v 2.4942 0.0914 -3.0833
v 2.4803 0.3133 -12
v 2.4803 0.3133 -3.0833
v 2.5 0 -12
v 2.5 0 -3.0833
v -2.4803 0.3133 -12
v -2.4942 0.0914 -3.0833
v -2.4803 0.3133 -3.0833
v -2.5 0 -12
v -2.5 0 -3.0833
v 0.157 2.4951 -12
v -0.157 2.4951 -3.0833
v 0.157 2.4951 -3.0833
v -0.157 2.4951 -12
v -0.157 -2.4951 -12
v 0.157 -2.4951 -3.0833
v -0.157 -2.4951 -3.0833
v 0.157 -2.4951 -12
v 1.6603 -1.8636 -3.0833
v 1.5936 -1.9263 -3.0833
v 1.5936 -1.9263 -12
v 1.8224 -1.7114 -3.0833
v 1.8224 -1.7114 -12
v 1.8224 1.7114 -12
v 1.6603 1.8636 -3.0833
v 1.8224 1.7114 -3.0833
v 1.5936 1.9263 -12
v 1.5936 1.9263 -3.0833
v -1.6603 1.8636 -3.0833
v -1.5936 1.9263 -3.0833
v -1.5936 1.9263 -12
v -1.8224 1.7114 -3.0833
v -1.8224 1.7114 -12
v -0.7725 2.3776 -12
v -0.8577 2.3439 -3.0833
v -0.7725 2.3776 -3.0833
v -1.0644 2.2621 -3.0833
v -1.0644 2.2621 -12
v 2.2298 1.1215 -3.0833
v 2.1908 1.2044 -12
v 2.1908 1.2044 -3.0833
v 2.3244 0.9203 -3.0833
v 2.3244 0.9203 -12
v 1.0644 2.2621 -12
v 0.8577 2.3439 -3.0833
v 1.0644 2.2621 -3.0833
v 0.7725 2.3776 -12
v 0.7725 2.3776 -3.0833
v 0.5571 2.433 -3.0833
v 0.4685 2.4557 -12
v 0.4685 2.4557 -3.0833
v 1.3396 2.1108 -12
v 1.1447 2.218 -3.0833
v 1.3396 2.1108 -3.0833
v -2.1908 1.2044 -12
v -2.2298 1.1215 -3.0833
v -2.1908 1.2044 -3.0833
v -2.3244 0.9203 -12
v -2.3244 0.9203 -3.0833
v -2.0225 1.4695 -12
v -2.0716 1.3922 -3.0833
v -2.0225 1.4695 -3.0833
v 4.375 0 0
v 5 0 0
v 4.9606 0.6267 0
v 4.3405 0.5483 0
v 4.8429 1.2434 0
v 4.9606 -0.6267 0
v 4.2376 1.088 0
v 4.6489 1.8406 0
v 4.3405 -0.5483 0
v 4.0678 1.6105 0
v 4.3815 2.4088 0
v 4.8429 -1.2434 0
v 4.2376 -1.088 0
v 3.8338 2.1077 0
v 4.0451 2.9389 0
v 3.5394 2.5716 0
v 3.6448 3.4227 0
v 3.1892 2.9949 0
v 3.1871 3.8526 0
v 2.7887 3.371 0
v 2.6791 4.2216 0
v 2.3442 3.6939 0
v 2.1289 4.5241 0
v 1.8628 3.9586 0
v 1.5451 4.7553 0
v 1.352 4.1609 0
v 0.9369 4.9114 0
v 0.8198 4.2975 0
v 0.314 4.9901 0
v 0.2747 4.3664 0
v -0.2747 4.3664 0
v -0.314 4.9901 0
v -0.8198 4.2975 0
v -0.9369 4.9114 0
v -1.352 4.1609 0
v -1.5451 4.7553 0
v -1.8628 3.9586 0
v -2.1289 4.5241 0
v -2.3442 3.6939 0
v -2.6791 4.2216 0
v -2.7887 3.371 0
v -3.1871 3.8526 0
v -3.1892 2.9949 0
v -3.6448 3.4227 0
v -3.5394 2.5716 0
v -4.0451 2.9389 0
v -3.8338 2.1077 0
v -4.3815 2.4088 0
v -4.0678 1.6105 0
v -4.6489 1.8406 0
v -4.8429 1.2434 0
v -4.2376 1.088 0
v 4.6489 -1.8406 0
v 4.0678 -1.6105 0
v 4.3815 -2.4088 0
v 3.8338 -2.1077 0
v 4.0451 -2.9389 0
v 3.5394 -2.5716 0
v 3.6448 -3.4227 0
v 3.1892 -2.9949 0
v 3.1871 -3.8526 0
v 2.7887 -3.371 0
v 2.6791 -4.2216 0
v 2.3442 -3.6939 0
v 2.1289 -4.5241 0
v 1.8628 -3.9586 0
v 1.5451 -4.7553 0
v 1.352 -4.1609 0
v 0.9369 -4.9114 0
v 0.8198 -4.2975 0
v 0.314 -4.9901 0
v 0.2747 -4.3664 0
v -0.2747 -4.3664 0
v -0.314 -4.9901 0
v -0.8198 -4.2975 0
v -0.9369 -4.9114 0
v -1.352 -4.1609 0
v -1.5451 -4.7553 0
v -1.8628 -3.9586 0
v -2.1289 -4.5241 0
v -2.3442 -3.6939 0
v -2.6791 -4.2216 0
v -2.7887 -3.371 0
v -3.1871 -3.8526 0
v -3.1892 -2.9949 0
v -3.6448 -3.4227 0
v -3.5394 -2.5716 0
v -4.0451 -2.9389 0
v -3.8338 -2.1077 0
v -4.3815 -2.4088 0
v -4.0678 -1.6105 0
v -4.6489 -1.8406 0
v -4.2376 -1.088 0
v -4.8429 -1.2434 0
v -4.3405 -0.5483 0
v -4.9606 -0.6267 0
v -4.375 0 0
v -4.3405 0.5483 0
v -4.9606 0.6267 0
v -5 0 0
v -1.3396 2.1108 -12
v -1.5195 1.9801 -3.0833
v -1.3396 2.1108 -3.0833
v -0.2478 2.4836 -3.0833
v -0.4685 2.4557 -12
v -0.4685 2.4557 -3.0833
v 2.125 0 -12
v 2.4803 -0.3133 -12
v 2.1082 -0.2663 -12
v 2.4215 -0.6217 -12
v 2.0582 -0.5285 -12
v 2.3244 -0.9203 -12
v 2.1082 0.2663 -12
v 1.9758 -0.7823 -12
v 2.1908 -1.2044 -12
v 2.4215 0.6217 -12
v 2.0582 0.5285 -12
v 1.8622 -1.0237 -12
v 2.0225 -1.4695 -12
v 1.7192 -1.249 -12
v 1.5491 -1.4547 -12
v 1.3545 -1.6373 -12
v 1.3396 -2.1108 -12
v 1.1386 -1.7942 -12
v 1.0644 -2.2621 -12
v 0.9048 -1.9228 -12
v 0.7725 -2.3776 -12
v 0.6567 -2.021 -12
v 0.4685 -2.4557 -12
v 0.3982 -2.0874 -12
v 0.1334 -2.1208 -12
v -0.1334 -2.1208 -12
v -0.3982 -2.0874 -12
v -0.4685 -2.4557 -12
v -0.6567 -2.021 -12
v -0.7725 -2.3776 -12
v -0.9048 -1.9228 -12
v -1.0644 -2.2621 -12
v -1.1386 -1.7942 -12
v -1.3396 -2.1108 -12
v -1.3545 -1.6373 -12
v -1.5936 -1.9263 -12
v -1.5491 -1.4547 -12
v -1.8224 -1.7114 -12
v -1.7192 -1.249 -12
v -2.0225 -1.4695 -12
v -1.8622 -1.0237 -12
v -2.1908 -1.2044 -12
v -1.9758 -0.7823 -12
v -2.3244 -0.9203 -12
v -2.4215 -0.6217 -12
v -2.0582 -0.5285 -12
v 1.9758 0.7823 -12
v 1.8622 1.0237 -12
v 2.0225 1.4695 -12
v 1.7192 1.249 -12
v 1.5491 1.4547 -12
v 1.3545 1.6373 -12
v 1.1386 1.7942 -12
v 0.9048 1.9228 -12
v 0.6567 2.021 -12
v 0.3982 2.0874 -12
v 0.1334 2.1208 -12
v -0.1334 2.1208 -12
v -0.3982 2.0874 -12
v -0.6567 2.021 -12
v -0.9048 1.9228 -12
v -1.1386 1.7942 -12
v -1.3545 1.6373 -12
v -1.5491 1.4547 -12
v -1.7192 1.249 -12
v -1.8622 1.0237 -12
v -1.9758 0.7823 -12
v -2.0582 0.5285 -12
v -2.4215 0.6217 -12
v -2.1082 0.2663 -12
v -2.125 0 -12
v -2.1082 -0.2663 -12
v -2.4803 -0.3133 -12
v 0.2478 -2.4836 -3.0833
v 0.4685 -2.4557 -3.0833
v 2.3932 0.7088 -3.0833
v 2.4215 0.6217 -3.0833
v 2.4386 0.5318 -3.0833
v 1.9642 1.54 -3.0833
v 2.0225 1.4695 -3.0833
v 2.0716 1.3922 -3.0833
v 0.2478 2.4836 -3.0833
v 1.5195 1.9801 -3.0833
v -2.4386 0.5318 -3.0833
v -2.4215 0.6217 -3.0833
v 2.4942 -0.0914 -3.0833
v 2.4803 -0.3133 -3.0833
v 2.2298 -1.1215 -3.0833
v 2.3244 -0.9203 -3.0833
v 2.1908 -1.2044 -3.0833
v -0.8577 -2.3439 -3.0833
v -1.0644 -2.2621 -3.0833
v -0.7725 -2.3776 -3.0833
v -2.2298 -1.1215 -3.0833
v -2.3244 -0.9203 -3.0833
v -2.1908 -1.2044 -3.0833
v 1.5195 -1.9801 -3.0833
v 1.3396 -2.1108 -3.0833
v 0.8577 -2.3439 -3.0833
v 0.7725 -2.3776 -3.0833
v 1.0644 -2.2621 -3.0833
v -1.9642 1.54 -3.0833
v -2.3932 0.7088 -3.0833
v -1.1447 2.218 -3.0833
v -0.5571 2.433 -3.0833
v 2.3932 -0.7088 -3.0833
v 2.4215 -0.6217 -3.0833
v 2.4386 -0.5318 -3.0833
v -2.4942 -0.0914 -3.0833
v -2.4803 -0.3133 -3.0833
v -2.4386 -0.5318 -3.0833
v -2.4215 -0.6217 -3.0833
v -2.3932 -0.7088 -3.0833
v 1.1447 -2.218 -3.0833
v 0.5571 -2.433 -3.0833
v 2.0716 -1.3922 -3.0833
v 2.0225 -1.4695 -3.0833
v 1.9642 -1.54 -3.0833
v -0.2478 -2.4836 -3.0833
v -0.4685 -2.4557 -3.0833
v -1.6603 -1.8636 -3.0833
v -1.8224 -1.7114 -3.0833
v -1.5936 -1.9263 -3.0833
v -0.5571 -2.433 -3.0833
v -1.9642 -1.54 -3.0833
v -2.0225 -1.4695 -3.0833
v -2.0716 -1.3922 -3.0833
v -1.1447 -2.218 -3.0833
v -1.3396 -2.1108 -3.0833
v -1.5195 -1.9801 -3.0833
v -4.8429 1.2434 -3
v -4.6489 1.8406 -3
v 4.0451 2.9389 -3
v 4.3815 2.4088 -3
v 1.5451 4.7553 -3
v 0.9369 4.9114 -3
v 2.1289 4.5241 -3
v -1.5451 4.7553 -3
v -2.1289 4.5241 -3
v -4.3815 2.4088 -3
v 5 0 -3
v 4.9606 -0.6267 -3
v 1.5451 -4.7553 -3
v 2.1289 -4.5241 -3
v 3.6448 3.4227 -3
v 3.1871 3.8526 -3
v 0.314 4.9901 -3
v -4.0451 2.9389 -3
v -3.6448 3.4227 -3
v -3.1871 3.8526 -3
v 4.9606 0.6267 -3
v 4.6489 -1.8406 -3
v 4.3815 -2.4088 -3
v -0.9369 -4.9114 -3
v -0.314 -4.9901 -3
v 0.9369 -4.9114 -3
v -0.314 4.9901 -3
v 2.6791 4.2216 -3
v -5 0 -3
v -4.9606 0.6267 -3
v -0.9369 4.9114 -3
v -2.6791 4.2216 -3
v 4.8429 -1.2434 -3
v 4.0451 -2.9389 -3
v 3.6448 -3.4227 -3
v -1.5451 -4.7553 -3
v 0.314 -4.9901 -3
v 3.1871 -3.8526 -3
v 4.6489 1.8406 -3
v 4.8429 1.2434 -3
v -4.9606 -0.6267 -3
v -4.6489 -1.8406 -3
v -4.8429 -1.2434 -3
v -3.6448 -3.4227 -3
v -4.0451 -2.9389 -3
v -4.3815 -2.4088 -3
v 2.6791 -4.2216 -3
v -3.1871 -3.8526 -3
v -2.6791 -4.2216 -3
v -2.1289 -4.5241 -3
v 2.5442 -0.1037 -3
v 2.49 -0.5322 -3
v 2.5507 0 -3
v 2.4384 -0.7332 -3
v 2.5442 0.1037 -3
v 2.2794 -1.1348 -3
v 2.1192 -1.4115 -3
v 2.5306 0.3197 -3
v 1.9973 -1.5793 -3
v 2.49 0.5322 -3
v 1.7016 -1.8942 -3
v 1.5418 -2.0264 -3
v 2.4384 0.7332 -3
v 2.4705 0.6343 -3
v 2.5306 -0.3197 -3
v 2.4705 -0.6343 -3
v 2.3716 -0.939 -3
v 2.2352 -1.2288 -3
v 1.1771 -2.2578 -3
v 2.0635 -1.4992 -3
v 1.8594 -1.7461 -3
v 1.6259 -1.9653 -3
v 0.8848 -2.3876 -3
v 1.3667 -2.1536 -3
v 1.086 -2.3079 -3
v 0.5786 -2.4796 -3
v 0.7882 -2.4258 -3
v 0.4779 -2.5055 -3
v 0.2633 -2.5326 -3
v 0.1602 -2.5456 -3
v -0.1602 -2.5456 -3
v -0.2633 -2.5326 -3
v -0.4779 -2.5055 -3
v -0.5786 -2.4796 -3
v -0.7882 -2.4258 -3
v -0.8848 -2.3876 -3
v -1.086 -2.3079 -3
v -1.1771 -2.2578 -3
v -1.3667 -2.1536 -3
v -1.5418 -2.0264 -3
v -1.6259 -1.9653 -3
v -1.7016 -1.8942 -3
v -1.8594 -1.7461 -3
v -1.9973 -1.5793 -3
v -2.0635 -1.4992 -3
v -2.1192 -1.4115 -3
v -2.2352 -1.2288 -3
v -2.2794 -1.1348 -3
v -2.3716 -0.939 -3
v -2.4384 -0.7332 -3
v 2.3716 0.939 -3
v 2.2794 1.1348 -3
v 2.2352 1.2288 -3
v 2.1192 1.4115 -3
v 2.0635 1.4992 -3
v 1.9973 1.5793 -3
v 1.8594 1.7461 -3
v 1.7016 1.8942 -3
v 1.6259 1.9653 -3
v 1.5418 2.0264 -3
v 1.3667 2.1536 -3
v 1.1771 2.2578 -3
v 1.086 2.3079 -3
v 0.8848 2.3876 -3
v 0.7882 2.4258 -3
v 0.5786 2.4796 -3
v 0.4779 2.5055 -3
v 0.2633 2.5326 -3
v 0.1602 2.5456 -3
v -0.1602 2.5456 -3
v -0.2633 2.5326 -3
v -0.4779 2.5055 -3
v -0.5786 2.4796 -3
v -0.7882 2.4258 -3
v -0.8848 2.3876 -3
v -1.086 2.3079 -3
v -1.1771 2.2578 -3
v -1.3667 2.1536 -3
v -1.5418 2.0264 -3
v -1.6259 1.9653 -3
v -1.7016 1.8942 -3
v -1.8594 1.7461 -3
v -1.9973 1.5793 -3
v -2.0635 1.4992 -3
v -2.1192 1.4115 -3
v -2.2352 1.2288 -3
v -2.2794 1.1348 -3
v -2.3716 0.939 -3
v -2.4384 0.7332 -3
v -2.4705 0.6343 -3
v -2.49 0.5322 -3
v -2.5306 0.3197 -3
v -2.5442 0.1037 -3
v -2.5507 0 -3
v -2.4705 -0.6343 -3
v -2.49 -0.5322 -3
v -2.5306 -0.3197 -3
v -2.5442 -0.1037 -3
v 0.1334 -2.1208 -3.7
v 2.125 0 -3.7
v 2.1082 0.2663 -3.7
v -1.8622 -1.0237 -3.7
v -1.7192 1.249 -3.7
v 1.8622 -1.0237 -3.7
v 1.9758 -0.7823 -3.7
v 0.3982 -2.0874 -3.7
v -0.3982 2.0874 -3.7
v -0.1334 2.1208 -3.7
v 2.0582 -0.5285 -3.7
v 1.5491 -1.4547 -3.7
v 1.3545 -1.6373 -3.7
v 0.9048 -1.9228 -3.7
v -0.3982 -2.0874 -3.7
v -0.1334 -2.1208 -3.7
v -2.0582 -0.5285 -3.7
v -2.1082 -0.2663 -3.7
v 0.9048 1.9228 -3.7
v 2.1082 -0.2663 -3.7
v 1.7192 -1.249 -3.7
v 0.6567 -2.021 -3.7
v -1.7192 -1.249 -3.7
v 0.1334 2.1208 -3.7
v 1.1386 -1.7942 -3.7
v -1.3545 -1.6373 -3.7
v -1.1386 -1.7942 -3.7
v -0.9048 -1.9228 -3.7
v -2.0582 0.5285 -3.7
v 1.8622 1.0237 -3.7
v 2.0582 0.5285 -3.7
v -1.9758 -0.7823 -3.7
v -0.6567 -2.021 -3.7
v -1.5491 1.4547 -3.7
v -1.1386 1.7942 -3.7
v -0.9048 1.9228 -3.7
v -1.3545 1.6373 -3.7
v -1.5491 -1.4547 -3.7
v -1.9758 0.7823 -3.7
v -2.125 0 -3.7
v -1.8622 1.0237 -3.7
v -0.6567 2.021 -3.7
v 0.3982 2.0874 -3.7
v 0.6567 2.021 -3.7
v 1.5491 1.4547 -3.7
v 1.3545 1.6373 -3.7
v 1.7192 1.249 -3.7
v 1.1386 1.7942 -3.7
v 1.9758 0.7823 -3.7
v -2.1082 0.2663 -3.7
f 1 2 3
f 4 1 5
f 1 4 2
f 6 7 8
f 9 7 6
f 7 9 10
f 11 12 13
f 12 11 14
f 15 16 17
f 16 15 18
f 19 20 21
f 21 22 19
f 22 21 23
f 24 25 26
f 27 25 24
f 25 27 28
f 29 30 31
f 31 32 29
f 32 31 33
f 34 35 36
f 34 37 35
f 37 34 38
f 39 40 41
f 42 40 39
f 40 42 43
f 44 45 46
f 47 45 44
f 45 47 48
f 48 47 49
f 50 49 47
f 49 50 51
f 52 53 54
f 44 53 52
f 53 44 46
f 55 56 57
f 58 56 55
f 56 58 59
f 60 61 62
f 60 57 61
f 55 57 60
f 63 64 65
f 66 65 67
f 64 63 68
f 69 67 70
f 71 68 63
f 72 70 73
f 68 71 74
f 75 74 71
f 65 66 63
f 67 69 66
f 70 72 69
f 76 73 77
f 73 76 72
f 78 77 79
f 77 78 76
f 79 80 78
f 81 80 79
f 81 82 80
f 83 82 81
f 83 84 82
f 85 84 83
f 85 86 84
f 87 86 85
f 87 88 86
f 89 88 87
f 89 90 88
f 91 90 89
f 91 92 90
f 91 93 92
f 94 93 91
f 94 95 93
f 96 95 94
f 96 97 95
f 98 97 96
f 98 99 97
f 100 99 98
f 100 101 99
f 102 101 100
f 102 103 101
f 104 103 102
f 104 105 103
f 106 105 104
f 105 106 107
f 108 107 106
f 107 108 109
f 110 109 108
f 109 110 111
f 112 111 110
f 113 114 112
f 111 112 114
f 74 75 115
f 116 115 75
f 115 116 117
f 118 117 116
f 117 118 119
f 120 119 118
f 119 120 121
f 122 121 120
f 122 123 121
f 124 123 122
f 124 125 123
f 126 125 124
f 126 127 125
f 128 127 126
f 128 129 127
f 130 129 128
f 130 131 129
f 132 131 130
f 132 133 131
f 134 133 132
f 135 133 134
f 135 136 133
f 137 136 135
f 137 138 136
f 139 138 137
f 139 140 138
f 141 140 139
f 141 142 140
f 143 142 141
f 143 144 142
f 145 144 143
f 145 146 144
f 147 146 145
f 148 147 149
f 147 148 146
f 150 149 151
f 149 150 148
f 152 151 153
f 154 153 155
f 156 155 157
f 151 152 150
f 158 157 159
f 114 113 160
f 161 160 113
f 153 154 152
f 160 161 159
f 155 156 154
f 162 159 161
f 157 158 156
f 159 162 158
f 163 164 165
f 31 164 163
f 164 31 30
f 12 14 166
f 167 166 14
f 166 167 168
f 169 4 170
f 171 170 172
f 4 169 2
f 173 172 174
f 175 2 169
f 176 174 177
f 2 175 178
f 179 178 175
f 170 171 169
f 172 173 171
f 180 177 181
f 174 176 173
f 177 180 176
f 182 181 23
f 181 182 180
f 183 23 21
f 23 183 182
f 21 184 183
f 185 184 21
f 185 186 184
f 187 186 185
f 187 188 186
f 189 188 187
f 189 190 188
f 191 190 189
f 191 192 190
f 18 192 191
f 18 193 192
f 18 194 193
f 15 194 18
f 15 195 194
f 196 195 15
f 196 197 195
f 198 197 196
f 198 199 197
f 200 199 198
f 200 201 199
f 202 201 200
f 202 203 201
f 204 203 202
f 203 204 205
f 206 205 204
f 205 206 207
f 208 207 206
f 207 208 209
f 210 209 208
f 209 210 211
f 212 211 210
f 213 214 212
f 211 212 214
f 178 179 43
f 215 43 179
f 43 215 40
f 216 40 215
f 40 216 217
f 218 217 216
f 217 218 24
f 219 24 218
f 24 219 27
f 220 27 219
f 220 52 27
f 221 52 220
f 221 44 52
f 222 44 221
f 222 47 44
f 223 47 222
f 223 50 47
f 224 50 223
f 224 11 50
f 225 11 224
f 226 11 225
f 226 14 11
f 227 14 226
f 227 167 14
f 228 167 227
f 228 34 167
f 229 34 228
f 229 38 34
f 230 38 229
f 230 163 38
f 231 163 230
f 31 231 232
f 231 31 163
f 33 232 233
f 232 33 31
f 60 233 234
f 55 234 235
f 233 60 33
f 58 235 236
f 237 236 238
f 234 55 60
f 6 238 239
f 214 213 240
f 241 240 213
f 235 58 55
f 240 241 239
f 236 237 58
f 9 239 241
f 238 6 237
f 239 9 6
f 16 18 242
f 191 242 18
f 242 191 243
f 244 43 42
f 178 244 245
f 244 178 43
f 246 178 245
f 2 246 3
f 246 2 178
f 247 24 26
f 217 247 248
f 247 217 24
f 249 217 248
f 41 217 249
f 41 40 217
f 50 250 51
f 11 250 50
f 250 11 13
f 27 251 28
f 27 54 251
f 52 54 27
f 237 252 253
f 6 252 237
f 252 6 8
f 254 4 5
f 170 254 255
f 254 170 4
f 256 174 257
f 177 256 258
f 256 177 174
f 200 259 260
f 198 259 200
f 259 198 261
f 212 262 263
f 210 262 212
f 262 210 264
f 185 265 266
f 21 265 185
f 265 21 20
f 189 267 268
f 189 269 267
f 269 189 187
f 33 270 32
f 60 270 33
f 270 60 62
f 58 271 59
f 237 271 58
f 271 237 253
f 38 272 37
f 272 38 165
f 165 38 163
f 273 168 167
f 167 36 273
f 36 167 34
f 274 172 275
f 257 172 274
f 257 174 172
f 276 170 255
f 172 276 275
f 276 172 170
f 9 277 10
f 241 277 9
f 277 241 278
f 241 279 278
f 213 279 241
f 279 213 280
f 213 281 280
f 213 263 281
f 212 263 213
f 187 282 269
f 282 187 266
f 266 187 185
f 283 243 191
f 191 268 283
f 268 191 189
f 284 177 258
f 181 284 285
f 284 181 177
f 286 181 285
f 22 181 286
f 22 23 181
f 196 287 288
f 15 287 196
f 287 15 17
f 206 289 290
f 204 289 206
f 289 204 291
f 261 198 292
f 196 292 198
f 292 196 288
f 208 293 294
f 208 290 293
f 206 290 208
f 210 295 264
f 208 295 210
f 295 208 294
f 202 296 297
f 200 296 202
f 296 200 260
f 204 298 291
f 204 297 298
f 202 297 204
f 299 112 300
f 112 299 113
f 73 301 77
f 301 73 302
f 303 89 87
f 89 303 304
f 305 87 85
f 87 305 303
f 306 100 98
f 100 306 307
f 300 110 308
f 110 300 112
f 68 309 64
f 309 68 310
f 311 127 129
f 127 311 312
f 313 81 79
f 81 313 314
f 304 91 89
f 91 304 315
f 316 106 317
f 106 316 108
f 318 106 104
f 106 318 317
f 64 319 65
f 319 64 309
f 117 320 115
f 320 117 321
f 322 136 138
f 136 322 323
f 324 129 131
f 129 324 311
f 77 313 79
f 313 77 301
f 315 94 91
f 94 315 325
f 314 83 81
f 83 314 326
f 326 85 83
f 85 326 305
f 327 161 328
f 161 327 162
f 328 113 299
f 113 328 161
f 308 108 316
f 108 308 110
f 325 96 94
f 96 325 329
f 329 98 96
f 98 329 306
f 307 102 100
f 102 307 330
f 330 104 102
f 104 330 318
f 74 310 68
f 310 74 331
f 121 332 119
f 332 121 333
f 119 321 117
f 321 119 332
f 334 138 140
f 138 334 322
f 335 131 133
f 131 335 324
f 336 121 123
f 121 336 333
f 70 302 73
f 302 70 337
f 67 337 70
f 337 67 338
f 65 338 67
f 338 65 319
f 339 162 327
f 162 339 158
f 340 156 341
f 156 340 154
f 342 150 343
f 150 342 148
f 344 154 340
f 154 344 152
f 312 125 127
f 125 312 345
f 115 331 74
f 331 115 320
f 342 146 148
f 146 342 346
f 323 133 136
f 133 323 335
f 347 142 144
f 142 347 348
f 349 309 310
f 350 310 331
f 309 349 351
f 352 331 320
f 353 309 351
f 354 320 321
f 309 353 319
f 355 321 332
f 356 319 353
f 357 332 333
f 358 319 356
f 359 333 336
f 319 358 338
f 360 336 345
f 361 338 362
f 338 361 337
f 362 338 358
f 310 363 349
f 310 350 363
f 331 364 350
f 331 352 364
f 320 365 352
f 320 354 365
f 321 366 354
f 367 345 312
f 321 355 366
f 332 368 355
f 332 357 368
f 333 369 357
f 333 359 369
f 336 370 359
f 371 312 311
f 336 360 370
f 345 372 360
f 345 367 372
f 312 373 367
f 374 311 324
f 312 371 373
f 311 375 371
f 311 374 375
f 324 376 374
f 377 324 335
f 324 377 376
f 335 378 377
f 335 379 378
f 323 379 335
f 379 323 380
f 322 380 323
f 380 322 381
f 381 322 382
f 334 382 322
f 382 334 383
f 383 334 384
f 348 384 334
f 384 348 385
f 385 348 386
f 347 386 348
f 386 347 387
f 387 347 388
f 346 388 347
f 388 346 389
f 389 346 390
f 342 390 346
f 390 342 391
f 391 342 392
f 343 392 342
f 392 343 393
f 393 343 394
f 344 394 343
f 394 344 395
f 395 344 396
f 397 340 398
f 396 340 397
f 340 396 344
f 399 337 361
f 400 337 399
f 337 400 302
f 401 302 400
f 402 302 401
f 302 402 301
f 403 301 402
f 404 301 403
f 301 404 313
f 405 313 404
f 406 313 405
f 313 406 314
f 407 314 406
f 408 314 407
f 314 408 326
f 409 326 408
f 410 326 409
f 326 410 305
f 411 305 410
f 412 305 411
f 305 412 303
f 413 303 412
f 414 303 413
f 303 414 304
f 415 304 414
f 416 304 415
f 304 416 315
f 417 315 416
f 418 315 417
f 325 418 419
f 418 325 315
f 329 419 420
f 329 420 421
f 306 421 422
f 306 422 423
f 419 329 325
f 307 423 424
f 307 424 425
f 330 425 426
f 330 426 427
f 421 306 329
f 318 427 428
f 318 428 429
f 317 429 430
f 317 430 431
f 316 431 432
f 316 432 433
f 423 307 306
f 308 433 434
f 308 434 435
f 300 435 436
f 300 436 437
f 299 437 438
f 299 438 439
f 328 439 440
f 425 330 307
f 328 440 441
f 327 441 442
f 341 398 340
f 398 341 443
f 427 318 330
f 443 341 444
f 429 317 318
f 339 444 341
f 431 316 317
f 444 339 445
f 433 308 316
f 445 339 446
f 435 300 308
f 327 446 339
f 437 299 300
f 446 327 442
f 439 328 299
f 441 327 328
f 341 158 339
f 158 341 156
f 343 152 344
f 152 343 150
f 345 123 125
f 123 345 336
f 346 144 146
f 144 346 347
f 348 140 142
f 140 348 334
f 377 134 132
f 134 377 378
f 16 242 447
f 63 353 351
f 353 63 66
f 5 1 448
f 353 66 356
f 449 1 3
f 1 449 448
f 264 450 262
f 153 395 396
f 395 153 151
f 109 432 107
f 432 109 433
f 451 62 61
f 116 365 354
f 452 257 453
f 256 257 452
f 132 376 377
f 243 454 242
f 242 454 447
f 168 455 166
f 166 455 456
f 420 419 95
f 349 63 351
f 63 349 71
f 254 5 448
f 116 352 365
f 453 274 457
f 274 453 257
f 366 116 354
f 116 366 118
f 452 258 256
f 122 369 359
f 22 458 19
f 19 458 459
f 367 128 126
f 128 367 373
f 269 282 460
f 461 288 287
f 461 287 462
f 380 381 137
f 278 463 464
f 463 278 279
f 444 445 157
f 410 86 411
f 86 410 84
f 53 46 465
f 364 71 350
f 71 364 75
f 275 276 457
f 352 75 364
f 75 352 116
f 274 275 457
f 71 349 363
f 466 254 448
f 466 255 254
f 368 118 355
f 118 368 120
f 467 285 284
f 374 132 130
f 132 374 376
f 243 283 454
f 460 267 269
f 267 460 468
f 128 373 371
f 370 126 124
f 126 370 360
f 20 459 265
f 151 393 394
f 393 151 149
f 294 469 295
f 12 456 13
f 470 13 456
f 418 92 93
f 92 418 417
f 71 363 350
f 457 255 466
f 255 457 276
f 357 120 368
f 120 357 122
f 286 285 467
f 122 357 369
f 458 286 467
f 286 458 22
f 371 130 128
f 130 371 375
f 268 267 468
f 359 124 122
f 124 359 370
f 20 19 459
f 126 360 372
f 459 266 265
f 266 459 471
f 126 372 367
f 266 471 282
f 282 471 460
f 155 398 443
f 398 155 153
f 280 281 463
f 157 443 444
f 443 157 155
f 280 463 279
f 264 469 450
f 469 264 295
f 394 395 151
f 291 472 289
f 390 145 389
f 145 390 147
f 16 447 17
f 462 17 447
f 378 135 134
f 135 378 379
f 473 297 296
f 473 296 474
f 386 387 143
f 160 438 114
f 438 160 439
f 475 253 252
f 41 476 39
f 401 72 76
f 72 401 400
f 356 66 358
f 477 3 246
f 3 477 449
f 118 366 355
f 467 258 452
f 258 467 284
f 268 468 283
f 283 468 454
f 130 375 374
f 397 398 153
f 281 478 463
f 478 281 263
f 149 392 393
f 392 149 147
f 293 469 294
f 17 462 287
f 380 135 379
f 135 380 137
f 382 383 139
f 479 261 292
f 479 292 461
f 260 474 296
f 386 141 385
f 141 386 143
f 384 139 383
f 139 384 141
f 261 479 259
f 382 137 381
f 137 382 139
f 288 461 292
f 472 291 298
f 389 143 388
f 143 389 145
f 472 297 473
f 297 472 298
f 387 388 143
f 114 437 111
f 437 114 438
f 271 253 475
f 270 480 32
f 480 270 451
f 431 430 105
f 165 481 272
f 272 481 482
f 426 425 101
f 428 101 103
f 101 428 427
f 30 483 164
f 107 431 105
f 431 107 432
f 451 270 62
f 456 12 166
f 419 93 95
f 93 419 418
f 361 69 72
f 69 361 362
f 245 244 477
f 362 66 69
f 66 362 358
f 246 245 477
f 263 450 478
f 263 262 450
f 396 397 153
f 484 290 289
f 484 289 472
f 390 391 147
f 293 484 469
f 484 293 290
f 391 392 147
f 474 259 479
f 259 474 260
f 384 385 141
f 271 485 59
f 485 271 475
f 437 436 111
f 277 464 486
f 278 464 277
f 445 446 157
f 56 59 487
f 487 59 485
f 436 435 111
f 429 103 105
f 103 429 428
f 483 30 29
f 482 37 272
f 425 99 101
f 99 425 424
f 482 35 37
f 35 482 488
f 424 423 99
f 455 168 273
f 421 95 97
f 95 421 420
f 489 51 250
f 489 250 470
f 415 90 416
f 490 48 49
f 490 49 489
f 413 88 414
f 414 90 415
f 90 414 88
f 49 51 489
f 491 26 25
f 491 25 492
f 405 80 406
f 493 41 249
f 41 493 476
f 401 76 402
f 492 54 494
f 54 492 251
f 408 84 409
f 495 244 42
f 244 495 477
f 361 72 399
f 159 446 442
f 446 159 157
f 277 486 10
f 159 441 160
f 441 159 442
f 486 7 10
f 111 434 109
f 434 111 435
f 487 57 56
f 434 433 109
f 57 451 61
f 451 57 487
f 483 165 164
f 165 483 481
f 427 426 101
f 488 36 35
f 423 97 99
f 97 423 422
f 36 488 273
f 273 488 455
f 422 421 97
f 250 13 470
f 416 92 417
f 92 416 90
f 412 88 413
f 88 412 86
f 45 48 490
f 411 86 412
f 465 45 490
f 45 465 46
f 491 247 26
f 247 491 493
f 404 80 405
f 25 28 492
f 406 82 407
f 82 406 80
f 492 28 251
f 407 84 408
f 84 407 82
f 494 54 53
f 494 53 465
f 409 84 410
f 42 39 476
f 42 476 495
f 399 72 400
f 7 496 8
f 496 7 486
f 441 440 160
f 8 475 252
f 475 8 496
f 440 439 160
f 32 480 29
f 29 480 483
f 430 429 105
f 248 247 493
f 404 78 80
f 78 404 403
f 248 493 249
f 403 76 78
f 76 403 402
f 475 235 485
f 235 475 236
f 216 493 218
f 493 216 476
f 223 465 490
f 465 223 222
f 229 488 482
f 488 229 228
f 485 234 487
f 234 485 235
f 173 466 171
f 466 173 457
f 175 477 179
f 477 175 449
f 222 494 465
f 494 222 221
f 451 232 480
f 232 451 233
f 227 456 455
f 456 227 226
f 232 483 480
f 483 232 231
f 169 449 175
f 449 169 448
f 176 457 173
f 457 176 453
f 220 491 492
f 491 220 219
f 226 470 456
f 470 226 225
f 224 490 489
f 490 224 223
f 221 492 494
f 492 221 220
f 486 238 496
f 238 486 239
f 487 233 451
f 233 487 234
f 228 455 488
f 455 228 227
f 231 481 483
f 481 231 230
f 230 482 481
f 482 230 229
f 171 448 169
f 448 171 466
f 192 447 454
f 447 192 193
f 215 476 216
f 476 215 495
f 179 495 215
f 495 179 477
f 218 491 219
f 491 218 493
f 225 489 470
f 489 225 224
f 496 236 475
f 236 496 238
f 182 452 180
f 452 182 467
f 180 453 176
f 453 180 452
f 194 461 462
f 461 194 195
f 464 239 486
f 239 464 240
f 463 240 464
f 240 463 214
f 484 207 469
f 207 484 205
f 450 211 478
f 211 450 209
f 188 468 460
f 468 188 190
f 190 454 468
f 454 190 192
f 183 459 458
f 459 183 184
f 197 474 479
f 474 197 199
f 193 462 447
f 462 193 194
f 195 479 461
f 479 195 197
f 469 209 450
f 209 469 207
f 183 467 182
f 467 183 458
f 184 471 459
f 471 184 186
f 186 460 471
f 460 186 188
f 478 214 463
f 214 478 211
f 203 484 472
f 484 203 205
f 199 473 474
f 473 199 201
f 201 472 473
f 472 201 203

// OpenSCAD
$fn = 50;


difference() {
	union() {
		translate(v = [0, 0, -12.0000000000]) {
			cylinder(h = 12, r = 2.5000000000);
		}
		translate(v = [0, 0, -3.0000000000]) {
			cylinder(h = 3, r = 5.0000000000);
		}
	}
	union() {
		translate(v = [0, 0, 0]) {
			rotate(a = [0, 0, 0]) {
				difference() {
					union() {
						#translate(v = [0, 0, -12.0000000000]) {
							cylinder(h = 12, r = 2.0000000000);
						}
						#translate(v = [0, 0, -3.7000000000]) {
							cylinder(h = 3.7000000000, r = 2.5000000000, r1 = 2.1250000000, r2 = 4.3750000000);
						}
						#translate(v = [0, 0, -12.0000000000]) {
							cylinder(h = 12, r = 2.1250000000);
						}
						#translate(v = [0, 0, -12.0000000000]) {
							cylinder(h = 12, r = 2.0000000000);
						}
					}
					union();
				}
			}
		}
	}
}
